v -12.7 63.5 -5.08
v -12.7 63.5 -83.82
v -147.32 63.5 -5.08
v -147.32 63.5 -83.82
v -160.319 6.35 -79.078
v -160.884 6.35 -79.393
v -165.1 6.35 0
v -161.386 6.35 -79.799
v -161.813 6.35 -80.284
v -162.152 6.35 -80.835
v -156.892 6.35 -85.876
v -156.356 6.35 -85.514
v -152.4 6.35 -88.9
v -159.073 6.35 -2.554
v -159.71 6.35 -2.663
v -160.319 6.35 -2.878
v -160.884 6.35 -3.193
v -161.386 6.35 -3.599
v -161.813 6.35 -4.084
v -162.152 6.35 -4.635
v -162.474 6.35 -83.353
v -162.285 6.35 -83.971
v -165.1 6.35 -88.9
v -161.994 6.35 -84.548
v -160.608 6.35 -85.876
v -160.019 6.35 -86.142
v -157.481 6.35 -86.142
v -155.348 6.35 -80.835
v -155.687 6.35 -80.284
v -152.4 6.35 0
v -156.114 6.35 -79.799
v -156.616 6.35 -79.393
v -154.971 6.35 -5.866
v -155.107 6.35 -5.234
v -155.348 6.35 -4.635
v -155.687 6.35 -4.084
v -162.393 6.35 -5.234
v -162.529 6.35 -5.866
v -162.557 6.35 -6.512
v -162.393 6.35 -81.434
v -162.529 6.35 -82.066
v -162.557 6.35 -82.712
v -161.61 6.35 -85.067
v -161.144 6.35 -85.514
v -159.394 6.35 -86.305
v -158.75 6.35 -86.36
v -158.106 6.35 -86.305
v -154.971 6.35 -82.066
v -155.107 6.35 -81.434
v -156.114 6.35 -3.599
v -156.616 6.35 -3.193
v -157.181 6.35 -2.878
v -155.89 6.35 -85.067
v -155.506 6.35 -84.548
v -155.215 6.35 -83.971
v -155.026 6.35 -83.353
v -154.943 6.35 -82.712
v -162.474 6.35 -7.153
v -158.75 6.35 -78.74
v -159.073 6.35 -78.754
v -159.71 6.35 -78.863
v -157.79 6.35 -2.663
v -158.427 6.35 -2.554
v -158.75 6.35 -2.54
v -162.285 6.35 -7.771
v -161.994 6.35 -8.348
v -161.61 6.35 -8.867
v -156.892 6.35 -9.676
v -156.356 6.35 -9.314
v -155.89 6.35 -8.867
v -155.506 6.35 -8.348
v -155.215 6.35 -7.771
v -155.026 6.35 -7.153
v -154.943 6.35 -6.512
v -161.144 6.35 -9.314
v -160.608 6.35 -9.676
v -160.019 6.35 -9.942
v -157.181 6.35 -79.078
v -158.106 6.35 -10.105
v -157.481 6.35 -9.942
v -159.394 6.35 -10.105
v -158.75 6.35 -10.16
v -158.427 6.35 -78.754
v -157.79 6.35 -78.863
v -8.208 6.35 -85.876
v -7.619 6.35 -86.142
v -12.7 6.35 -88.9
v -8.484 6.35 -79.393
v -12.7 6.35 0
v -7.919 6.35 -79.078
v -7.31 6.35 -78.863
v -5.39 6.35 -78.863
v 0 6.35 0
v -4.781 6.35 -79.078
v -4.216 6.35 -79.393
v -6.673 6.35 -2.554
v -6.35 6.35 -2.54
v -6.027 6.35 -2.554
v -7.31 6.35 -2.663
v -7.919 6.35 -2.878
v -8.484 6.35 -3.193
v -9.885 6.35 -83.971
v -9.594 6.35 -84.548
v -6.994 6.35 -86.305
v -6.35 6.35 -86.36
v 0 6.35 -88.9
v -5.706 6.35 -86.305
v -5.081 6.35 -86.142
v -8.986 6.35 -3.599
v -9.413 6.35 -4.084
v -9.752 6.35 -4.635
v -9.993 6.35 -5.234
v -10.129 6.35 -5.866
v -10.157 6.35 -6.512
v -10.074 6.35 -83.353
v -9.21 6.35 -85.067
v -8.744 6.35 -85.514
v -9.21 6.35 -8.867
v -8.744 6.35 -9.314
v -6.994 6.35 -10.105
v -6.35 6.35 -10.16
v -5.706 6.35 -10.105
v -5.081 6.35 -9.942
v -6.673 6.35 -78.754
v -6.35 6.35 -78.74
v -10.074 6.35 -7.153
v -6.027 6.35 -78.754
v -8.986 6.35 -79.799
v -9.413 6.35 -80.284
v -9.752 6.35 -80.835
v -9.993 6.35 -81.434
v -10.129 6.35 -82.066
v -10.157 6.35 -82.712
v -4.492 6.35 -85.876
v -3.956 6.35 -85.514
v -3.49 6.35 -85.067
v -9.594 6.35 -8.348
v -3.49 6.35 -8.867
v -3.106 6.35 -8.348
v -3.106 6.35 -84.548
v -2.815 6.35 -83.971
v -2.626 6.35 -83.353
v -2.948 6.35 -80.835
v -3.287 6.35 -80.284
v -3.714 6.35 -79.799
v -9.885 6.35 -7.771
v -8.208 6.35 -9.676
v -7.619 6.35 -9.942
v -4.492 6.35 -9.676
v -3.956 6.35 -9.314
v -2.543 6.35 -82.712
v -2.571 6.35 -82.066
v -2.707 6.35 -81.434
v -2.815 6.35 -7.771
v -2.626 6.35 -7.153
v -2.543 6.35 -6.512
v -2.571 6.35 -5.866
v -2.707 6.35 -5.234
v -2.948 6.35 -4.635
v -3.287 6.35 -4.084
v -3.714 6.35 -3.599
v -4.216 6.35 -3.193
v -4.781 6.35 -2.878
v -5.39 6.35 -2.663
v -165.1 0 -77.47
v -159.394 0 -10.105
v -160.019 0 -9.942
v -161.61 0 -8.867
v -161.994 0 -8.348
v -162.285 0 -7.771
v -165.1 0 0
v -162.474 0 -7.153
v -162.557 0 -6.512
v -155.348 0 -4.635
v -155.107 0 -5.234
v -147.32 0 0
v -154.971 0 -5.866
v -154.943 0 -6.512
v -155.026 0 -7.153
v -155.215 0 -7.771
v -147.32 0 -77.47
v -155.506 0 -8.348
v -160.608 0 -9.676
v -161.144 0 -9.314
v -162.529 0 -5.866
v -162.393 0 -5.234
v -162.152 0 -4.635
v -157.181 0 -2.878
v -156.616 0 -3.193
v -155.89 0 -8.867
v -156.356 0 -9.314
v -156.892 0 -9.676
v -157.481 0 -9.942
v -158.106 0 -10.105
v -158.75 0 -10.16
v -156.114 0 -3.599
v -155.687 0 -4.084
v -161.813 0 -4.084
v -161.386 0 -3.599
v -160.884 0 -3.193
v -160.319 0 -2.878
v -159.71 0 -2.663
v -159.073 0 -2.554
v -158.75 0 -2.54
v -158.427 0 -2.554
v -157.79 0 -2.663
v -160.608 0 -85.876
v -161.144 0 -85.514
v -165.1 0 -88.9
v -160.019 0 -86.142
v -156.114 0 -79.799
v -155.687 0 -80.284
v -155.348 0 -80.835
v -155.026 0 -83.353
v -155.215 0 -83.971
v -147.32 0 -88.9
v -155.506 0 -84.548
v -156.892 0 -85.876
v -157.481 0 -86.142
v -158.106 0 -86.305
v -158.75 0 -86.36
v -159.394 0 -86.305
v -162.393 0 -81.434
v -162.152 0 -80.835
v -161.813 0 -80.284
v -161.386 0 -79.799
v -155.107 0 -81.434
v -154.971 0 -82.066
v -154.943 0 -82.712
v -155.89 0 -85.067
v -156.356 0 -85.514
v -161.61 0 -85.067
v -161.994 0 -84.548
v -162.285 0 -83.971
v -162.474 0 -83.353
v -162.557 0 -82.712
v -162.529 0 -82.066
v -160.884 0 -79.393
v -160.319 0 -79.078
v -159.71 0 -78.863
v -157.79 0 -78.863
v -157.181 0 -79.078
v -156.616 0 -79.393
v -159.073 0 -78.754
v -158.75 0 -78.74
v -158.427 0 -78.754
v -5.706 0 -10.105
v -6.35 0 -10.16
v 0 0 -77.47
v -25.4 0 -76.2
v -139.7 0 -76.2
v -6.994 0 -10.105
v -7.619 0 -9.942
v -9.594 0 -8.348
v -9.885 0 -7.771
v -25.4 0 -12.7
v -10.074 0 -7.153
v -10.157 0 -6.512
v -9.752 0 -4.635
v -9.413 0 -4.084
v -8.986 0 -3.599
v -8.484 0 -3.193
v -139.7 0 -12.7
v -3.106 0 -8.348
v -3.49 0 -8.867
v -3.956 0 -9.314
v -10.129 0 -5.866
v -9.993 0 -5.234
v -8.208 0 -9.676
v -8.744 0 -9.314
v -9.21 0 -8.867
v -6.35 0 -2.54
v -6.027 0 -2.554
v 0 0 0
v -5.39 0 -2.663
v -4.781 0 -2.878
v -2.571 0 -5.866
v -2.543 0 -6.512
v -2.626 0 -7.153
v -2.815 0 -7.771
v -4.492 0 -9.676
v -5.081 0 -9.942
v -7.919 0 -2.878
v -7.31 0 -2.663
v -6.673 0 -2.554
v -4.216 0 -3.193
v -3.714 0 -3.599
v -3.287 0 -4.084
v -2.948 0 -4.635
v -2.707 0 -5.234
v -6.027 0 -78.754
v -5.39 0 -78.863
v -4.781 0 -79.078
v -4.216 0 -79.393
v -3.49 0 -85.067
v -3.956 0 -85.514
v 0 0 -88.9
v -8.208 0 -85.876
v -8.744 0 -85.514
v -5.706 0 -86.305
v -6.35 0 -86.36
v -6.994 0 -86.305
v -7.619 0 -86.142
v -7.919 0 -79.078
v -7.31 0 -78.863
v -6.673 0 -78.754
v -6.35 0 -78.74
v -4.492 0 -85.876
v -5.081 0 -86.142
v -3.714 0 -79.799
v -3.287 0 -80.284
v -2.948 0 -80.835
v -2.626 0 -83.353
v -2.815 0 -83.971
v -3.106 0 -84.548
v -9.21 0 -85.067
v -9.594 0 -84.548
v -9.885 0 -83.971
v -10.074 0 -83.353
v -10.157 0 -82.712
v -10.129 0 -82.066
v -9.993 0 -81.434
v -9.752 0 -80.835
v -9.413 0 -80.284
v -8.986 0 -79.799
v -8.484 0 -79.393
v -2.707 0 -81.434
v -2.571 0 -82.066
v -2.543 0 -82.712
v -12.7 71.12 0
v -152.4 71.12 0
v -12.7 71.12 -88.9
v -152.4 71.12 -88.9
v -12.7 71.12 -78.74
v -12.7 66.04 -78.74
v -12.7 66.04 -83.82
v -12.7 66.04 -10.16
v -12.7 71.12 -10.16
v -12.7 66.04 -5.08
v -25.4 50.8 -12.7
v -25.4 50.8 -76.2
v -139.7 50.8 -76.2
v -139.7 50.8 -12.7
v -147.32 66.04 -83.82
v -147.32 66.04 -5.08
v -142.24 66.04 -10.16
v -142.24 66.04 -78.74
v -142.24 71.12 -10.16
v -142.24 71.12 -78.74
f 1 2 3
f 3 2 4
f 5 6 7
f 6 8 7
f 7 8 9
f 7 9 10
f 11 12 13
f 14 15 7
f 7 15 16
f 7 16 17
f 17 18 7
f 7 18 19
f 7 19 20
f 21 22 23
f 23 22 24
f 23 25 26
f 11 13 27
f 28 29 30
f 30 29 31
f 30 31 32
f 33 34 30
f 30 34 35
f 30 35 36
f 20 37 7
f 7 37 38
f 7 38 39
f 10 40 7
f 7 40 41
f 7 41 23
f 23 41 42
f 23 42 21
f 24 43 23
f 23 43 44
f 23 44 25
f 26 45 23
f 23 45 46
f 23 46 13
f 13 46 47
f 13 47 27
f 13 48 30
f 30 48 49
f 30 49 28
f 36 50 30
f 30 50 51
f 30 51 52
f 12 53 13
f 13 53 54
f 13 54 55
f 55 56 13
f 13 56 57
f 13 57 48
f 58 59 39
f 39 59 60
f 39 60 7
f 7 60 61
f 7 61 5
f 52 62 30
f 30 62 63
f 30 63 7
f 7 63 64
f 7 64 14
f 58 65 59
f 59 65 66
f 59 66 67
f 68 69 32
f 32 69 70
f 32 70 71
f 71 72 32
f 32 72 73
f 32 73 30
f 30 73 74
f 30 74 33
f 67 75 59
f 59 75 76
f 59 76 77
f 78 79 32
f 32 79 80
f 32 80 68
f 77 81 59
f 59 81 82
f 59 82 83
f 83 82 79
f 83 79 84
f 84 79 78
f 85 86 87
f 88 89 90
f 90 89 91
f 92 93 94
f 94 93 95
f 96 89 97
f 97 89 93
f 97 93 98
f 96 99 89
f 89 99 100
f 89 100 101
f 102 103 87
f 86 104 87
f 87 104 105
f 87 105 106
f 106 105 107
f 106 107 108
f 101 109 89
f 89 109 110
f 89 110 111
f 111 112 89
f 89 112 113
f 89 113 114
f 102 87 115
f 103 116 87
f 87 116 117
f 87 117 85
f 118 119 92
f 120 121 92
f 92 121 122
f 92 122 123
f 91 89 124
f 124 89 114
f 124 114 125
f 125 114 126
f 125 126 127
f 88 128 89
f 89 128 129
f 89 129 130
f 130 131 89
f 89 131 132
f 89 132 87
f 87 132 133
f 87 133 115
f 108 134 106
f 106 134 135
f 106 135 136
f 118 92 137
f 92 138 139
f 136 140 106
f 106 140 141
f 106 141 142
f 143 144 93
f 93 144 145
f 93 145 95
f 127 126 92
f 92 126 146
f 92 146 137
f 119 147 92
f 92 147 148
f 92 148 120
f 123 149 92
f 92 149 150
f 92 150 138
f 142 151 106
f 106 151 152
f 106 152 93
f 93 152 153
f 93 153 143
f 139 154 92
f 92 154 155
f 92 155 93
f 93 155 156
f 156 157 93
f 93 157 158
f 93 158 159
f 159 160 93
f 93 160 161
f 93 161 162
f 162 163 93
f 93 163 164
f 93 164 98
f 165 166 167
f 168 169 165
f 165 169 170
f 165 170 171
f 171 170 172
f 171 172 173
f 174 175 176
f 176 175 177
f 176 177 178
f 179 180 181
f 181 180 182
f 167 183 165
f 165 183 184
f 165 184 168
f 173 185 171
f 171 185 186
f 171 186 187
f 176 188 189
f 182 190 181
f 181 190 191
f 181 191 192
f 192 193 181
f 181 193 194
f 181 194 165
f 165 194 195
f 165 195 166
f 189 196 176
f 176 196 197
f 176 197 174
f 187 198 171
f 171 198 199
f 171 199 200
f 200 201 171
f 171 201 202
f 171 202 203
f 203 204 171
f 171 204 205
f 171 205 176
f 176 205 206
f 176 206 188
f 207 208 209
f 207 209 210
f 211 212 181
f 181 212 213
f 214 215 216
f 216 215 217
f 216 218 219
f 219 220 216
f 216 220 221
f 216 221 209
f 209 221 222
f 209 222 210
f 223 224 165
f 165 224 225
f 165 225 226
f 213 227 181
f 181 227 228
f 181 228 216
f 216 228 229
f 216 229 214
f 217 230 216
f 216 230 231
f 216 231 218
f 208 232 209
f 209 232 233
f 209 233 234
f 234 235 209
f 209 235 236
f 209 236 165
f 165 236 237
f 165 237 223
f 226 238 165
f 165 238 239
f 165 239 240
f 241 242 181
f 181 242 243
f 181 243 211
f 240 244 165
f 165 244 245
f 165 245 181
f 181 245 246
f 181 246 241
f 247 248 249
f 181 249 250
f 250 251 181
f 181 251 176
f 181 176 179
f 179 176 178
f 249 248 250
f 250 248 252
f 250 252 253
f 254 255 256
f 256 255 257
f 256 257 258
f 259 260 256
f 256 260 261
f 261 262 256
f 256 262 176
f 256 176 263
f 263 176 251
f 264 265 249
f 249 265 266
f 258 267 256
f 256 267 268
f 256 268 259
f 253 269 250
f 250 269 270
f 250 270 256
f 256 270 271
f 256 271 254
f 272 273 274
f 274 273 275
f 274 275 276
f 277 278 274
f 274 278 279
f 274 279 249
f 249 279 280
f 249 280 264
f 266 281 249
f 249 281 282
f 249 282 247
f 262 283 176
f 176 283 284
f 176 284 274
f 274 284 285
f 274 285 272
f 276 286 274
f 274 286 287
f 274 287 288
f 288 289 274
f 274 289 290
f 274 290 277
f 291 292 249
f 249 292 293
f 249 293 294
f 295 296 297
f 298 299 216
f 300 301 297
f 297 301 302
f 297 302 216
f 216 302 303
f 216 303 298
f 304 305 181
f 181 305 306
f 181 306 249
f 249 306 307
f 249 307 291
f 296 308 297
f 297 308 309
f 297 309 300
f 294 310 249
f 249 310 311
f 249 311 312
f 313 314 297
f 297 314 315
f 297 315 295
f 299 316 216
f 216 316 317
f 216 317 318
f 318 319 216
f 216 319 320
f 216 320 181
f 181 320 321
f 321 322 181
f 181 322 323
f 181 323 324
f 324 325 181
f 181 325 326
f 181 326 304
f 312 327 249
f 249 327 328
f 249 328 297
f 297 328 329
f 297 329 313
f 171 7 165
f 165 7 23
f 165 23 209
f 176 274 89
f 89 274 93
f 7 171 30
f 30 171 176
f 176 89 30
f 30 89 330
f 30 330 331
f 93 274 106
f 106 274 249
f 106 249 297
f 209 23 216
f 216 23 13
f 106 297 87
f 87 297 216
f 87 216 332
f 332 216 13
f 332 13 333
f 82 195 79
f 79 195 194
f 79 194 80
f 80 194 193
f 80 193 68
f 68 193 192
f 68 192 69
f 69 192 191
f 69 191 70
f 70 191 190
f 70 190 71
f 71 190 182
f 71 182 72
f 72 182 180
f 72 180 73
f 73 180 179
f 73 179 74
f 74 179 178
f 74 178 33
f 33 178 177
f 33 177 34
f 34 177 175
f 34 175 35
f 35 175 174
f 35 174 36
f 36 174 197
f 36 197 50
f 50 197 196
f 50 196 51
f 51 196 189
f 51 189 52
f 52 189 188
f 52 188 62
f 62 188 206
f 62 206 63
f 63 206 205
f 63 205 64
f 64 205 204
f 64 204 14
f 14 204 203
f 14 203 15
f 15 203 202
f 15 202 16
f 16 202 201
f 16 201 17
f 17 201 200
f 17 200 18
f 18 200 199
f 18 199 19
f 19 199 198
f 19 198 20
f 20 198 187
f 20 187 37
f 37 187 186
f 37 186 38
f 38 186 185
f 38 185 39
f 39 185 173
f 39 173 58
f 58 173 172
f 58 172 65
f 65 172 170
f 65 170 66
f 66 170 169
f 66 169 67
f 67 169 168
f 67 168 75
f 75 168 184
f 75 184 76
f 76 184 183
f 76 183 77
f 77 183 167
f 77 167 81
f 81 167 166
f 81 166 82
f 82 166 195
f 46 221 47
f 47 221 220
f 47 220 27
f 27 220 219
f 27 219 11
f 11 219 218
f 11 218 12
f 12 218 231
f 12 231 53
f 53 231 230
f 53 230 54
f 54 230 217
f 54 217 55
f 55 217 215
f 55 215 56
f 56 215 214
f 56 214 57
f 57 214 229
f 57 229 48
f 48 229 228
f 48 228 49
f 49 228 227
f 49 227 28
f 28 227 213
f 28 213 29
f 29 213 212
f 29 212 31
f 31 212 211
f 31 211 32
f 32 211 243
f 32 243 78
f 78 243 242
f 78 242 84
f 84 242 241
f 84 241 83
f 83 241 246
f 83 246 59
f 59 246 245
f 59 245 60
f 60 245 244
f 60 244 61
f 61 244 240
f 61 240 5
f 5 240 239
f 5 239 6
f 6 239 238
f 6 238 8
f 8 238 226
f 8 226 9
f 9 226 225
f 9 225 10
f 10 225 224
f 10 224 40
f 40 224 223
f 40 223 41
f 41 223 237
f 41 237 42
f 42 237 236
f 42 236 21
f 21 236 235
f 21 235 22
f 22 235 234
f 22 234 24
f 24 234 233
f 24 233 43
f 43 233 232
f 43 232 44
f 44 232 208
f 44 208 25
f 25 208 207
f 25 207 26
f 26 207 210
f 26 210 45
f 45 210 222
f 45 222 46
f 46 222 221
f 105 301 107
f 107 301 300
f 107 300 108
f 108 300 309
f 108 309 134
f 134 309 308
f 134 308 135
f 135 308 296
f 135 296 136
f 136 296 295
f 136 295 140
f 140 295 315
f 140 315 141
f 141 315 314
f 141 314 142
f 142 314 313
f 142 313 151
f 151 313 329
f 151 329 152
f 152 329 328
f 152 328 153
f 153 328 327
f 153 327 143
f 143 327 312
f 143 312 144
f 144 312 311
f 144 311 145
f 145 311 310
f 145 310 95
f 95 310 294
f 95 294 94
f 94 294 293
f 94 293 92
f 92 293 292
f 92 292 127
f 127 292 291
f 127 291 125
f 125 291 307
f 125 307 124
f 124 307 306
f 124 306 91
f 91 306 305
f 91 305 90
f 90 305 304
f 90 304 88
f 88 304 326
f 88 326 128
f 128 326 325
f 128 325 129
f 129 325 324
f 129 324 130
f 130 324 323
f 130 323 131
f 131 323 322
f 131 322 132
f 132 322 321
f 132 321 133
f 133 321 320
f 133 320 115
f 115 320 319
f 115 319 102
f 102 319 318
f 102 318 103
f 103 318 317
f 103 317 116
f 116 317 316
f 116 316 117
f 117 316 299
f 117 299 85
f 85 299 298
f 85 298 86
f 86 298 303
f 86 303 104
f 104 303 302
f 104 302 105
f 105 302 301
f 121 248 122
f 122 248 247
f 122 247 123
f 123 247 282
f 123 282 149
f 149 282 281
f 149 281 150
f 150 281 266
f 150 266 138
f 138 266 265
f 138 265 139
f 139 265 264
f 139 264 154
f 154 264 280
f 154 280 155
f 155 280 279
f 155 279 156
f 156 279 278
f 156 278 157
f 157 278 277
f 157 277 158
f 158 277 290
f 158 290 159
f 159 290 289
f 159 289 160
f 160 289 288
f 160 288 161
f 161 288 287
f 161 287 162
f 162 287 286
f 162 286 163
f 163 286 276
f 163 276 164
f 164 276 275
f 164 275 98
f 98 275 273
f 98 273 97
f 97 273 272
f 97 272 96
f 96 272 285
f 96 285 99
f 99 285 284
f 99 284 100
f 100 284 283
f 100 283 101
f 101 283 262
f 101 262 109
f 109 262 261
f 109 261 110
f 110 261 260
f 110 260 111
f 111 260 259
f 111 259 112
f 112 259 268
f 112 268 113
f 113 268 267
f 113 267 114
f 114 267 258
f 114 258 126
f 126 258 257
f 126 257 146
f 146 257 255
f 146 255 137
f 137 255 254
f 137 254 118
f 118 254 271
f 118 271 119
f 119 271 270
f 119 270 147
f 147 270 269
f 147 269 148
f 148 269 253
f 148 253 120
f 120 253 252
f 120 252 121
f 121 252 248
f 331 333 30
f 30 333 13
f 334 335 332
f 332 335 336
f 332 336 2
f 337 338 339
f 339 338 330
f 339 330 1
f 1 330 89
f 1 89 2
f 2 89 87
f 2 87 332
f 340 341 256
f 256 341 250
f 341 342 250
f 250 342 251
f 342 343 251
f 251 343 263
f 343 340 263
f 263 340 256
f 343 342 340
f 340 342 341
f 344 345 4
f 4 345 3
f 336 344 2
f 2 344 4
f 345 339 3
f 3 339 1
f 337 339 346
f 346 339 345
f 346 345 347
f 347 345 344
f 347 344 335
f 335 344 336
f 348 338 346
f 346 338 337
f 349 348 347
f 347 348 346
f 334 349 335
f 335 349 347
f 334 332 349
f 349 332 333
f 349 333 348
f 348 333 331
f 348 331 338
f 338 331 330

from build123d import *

# Parameters (mm, degrees)
SKETCH1_W           = 165.1
SKETCH1_H           = 88.9
SKETCH1_R           = 3.81
BOSS_EXTRUDE1_DEPTH = 6.35
SKETCH2_W           = 139.7
SKETCH2_H           = 88.9
BOSS_EXTRUDE2_DEPTH = 57.15
SKETCH3_W           = 114.3
SKETCH3_H           = 63.5
CUT_EXTRUDE1_DEPTH  = 50.8
BOSS_EXTRUDE3_DEPTH = 2.54
BOSS_EXTRUDE4_DEPTH = 5.08


with BuildPart() as part:
    # Sketch1 → Boss-Extrude1 (new body)
    with BuildSketch(Plane(origin=(0, 0, 0), x_dir=(1, 0, 0), z_dir=(0, 1, 0))):
        with Locations((-82.55, 44.45)):
            Rectangle(SKETCH1_W, SKETCH1_H)
        with Locations((-158.75, 6.35)):
            Circle(SKETCH1_R, mode=Mode.SUBTRACT)
        with Locations((-158.75, 82.55)):
            Circle(SKETCH1_R, mode=Mode.SUBTRACT)
        with Locations((-6.35, 82.55)):
            Circle(SKETCH1_R, mode=Mode.SUBTRACT)
        with Locations((-6.35, 6.35)):
            Circle(SKETCH1_R, mode=Mode.SUBTRACT)
    extrude(amount=BOSS_EXTRUDE1_DEPTH)

    # Sketch2 → Boss-Extrude2 (add)
    with BuildSketch(Plane(origin=(0, 6.35, 0), x_dir=(1, 0, 0), z_dir=(0, 1, 0))):
        with Locations((-82.55, 44.45)):
            Rectangle(SKETCH2_W, SKETCH2_H)
    extrude(amount=BOSS_EXTRUDE2_DEPTH)

    # Sketch3 → Cut-Extrude1 (cut)
    with BuildSketch(Plane(origin=(0, 0, 0), x_dir=(-1, 0, 0), z_dir=(0, -1, 0))):
        with Locations((82.55, 44.45)):
            Rectangle(SKETCH3_W, SKETCH3_H)
    extrude(amount=-CUT_EXTRUDE1_DEPTH, mode=Mode.SUBTRACT)

    # Sketch5 → Boss-Extrude3 (add)
    with BuildSketch(Plane(origin=(0, 63.5, 0), x_dir=(1, 0, 0), z_dir=(0, 1, 0))):
        Polygon((-152.4, 88.9), (-152.4, 0), (-12.7, 0), (-12.7, 5.08), (-147.32, 5.08), (-147.32, 83.82), (-12.7, 83.82), (-12.7, 88.9), align=None)
    extrude(amount=BOSS_EXTRUDE3_DEPTH)

    # Sketch6 → Boss-Extrude4 (add)
    with BuildSketch(Plane(origin=(0, 66.04, 0), x_dir=(1, 0, 0), z_dir=(0, 1, 0))):
        Polygon((-147.32, 5.08), (-12.7, 5.08), (-12.7, 10.16), (-142.24, 10.16), (-142.24, 78.74), (-12.7, 78.74), (-12.7, 83.82), (-147.32, 83.82), align=None)
        Polygon((-12.7, 5.08), (-147.32, 5.08), (-147.32, 83.82), (-12.7, 83.82), (-12.7, 88.9), (-152.4, 88.9), (-152.4, 0), (-12.7, 0), align=None)
    extrude(amount=BOSS_EXTRUDE4_DEPTH)


solid = part.part
